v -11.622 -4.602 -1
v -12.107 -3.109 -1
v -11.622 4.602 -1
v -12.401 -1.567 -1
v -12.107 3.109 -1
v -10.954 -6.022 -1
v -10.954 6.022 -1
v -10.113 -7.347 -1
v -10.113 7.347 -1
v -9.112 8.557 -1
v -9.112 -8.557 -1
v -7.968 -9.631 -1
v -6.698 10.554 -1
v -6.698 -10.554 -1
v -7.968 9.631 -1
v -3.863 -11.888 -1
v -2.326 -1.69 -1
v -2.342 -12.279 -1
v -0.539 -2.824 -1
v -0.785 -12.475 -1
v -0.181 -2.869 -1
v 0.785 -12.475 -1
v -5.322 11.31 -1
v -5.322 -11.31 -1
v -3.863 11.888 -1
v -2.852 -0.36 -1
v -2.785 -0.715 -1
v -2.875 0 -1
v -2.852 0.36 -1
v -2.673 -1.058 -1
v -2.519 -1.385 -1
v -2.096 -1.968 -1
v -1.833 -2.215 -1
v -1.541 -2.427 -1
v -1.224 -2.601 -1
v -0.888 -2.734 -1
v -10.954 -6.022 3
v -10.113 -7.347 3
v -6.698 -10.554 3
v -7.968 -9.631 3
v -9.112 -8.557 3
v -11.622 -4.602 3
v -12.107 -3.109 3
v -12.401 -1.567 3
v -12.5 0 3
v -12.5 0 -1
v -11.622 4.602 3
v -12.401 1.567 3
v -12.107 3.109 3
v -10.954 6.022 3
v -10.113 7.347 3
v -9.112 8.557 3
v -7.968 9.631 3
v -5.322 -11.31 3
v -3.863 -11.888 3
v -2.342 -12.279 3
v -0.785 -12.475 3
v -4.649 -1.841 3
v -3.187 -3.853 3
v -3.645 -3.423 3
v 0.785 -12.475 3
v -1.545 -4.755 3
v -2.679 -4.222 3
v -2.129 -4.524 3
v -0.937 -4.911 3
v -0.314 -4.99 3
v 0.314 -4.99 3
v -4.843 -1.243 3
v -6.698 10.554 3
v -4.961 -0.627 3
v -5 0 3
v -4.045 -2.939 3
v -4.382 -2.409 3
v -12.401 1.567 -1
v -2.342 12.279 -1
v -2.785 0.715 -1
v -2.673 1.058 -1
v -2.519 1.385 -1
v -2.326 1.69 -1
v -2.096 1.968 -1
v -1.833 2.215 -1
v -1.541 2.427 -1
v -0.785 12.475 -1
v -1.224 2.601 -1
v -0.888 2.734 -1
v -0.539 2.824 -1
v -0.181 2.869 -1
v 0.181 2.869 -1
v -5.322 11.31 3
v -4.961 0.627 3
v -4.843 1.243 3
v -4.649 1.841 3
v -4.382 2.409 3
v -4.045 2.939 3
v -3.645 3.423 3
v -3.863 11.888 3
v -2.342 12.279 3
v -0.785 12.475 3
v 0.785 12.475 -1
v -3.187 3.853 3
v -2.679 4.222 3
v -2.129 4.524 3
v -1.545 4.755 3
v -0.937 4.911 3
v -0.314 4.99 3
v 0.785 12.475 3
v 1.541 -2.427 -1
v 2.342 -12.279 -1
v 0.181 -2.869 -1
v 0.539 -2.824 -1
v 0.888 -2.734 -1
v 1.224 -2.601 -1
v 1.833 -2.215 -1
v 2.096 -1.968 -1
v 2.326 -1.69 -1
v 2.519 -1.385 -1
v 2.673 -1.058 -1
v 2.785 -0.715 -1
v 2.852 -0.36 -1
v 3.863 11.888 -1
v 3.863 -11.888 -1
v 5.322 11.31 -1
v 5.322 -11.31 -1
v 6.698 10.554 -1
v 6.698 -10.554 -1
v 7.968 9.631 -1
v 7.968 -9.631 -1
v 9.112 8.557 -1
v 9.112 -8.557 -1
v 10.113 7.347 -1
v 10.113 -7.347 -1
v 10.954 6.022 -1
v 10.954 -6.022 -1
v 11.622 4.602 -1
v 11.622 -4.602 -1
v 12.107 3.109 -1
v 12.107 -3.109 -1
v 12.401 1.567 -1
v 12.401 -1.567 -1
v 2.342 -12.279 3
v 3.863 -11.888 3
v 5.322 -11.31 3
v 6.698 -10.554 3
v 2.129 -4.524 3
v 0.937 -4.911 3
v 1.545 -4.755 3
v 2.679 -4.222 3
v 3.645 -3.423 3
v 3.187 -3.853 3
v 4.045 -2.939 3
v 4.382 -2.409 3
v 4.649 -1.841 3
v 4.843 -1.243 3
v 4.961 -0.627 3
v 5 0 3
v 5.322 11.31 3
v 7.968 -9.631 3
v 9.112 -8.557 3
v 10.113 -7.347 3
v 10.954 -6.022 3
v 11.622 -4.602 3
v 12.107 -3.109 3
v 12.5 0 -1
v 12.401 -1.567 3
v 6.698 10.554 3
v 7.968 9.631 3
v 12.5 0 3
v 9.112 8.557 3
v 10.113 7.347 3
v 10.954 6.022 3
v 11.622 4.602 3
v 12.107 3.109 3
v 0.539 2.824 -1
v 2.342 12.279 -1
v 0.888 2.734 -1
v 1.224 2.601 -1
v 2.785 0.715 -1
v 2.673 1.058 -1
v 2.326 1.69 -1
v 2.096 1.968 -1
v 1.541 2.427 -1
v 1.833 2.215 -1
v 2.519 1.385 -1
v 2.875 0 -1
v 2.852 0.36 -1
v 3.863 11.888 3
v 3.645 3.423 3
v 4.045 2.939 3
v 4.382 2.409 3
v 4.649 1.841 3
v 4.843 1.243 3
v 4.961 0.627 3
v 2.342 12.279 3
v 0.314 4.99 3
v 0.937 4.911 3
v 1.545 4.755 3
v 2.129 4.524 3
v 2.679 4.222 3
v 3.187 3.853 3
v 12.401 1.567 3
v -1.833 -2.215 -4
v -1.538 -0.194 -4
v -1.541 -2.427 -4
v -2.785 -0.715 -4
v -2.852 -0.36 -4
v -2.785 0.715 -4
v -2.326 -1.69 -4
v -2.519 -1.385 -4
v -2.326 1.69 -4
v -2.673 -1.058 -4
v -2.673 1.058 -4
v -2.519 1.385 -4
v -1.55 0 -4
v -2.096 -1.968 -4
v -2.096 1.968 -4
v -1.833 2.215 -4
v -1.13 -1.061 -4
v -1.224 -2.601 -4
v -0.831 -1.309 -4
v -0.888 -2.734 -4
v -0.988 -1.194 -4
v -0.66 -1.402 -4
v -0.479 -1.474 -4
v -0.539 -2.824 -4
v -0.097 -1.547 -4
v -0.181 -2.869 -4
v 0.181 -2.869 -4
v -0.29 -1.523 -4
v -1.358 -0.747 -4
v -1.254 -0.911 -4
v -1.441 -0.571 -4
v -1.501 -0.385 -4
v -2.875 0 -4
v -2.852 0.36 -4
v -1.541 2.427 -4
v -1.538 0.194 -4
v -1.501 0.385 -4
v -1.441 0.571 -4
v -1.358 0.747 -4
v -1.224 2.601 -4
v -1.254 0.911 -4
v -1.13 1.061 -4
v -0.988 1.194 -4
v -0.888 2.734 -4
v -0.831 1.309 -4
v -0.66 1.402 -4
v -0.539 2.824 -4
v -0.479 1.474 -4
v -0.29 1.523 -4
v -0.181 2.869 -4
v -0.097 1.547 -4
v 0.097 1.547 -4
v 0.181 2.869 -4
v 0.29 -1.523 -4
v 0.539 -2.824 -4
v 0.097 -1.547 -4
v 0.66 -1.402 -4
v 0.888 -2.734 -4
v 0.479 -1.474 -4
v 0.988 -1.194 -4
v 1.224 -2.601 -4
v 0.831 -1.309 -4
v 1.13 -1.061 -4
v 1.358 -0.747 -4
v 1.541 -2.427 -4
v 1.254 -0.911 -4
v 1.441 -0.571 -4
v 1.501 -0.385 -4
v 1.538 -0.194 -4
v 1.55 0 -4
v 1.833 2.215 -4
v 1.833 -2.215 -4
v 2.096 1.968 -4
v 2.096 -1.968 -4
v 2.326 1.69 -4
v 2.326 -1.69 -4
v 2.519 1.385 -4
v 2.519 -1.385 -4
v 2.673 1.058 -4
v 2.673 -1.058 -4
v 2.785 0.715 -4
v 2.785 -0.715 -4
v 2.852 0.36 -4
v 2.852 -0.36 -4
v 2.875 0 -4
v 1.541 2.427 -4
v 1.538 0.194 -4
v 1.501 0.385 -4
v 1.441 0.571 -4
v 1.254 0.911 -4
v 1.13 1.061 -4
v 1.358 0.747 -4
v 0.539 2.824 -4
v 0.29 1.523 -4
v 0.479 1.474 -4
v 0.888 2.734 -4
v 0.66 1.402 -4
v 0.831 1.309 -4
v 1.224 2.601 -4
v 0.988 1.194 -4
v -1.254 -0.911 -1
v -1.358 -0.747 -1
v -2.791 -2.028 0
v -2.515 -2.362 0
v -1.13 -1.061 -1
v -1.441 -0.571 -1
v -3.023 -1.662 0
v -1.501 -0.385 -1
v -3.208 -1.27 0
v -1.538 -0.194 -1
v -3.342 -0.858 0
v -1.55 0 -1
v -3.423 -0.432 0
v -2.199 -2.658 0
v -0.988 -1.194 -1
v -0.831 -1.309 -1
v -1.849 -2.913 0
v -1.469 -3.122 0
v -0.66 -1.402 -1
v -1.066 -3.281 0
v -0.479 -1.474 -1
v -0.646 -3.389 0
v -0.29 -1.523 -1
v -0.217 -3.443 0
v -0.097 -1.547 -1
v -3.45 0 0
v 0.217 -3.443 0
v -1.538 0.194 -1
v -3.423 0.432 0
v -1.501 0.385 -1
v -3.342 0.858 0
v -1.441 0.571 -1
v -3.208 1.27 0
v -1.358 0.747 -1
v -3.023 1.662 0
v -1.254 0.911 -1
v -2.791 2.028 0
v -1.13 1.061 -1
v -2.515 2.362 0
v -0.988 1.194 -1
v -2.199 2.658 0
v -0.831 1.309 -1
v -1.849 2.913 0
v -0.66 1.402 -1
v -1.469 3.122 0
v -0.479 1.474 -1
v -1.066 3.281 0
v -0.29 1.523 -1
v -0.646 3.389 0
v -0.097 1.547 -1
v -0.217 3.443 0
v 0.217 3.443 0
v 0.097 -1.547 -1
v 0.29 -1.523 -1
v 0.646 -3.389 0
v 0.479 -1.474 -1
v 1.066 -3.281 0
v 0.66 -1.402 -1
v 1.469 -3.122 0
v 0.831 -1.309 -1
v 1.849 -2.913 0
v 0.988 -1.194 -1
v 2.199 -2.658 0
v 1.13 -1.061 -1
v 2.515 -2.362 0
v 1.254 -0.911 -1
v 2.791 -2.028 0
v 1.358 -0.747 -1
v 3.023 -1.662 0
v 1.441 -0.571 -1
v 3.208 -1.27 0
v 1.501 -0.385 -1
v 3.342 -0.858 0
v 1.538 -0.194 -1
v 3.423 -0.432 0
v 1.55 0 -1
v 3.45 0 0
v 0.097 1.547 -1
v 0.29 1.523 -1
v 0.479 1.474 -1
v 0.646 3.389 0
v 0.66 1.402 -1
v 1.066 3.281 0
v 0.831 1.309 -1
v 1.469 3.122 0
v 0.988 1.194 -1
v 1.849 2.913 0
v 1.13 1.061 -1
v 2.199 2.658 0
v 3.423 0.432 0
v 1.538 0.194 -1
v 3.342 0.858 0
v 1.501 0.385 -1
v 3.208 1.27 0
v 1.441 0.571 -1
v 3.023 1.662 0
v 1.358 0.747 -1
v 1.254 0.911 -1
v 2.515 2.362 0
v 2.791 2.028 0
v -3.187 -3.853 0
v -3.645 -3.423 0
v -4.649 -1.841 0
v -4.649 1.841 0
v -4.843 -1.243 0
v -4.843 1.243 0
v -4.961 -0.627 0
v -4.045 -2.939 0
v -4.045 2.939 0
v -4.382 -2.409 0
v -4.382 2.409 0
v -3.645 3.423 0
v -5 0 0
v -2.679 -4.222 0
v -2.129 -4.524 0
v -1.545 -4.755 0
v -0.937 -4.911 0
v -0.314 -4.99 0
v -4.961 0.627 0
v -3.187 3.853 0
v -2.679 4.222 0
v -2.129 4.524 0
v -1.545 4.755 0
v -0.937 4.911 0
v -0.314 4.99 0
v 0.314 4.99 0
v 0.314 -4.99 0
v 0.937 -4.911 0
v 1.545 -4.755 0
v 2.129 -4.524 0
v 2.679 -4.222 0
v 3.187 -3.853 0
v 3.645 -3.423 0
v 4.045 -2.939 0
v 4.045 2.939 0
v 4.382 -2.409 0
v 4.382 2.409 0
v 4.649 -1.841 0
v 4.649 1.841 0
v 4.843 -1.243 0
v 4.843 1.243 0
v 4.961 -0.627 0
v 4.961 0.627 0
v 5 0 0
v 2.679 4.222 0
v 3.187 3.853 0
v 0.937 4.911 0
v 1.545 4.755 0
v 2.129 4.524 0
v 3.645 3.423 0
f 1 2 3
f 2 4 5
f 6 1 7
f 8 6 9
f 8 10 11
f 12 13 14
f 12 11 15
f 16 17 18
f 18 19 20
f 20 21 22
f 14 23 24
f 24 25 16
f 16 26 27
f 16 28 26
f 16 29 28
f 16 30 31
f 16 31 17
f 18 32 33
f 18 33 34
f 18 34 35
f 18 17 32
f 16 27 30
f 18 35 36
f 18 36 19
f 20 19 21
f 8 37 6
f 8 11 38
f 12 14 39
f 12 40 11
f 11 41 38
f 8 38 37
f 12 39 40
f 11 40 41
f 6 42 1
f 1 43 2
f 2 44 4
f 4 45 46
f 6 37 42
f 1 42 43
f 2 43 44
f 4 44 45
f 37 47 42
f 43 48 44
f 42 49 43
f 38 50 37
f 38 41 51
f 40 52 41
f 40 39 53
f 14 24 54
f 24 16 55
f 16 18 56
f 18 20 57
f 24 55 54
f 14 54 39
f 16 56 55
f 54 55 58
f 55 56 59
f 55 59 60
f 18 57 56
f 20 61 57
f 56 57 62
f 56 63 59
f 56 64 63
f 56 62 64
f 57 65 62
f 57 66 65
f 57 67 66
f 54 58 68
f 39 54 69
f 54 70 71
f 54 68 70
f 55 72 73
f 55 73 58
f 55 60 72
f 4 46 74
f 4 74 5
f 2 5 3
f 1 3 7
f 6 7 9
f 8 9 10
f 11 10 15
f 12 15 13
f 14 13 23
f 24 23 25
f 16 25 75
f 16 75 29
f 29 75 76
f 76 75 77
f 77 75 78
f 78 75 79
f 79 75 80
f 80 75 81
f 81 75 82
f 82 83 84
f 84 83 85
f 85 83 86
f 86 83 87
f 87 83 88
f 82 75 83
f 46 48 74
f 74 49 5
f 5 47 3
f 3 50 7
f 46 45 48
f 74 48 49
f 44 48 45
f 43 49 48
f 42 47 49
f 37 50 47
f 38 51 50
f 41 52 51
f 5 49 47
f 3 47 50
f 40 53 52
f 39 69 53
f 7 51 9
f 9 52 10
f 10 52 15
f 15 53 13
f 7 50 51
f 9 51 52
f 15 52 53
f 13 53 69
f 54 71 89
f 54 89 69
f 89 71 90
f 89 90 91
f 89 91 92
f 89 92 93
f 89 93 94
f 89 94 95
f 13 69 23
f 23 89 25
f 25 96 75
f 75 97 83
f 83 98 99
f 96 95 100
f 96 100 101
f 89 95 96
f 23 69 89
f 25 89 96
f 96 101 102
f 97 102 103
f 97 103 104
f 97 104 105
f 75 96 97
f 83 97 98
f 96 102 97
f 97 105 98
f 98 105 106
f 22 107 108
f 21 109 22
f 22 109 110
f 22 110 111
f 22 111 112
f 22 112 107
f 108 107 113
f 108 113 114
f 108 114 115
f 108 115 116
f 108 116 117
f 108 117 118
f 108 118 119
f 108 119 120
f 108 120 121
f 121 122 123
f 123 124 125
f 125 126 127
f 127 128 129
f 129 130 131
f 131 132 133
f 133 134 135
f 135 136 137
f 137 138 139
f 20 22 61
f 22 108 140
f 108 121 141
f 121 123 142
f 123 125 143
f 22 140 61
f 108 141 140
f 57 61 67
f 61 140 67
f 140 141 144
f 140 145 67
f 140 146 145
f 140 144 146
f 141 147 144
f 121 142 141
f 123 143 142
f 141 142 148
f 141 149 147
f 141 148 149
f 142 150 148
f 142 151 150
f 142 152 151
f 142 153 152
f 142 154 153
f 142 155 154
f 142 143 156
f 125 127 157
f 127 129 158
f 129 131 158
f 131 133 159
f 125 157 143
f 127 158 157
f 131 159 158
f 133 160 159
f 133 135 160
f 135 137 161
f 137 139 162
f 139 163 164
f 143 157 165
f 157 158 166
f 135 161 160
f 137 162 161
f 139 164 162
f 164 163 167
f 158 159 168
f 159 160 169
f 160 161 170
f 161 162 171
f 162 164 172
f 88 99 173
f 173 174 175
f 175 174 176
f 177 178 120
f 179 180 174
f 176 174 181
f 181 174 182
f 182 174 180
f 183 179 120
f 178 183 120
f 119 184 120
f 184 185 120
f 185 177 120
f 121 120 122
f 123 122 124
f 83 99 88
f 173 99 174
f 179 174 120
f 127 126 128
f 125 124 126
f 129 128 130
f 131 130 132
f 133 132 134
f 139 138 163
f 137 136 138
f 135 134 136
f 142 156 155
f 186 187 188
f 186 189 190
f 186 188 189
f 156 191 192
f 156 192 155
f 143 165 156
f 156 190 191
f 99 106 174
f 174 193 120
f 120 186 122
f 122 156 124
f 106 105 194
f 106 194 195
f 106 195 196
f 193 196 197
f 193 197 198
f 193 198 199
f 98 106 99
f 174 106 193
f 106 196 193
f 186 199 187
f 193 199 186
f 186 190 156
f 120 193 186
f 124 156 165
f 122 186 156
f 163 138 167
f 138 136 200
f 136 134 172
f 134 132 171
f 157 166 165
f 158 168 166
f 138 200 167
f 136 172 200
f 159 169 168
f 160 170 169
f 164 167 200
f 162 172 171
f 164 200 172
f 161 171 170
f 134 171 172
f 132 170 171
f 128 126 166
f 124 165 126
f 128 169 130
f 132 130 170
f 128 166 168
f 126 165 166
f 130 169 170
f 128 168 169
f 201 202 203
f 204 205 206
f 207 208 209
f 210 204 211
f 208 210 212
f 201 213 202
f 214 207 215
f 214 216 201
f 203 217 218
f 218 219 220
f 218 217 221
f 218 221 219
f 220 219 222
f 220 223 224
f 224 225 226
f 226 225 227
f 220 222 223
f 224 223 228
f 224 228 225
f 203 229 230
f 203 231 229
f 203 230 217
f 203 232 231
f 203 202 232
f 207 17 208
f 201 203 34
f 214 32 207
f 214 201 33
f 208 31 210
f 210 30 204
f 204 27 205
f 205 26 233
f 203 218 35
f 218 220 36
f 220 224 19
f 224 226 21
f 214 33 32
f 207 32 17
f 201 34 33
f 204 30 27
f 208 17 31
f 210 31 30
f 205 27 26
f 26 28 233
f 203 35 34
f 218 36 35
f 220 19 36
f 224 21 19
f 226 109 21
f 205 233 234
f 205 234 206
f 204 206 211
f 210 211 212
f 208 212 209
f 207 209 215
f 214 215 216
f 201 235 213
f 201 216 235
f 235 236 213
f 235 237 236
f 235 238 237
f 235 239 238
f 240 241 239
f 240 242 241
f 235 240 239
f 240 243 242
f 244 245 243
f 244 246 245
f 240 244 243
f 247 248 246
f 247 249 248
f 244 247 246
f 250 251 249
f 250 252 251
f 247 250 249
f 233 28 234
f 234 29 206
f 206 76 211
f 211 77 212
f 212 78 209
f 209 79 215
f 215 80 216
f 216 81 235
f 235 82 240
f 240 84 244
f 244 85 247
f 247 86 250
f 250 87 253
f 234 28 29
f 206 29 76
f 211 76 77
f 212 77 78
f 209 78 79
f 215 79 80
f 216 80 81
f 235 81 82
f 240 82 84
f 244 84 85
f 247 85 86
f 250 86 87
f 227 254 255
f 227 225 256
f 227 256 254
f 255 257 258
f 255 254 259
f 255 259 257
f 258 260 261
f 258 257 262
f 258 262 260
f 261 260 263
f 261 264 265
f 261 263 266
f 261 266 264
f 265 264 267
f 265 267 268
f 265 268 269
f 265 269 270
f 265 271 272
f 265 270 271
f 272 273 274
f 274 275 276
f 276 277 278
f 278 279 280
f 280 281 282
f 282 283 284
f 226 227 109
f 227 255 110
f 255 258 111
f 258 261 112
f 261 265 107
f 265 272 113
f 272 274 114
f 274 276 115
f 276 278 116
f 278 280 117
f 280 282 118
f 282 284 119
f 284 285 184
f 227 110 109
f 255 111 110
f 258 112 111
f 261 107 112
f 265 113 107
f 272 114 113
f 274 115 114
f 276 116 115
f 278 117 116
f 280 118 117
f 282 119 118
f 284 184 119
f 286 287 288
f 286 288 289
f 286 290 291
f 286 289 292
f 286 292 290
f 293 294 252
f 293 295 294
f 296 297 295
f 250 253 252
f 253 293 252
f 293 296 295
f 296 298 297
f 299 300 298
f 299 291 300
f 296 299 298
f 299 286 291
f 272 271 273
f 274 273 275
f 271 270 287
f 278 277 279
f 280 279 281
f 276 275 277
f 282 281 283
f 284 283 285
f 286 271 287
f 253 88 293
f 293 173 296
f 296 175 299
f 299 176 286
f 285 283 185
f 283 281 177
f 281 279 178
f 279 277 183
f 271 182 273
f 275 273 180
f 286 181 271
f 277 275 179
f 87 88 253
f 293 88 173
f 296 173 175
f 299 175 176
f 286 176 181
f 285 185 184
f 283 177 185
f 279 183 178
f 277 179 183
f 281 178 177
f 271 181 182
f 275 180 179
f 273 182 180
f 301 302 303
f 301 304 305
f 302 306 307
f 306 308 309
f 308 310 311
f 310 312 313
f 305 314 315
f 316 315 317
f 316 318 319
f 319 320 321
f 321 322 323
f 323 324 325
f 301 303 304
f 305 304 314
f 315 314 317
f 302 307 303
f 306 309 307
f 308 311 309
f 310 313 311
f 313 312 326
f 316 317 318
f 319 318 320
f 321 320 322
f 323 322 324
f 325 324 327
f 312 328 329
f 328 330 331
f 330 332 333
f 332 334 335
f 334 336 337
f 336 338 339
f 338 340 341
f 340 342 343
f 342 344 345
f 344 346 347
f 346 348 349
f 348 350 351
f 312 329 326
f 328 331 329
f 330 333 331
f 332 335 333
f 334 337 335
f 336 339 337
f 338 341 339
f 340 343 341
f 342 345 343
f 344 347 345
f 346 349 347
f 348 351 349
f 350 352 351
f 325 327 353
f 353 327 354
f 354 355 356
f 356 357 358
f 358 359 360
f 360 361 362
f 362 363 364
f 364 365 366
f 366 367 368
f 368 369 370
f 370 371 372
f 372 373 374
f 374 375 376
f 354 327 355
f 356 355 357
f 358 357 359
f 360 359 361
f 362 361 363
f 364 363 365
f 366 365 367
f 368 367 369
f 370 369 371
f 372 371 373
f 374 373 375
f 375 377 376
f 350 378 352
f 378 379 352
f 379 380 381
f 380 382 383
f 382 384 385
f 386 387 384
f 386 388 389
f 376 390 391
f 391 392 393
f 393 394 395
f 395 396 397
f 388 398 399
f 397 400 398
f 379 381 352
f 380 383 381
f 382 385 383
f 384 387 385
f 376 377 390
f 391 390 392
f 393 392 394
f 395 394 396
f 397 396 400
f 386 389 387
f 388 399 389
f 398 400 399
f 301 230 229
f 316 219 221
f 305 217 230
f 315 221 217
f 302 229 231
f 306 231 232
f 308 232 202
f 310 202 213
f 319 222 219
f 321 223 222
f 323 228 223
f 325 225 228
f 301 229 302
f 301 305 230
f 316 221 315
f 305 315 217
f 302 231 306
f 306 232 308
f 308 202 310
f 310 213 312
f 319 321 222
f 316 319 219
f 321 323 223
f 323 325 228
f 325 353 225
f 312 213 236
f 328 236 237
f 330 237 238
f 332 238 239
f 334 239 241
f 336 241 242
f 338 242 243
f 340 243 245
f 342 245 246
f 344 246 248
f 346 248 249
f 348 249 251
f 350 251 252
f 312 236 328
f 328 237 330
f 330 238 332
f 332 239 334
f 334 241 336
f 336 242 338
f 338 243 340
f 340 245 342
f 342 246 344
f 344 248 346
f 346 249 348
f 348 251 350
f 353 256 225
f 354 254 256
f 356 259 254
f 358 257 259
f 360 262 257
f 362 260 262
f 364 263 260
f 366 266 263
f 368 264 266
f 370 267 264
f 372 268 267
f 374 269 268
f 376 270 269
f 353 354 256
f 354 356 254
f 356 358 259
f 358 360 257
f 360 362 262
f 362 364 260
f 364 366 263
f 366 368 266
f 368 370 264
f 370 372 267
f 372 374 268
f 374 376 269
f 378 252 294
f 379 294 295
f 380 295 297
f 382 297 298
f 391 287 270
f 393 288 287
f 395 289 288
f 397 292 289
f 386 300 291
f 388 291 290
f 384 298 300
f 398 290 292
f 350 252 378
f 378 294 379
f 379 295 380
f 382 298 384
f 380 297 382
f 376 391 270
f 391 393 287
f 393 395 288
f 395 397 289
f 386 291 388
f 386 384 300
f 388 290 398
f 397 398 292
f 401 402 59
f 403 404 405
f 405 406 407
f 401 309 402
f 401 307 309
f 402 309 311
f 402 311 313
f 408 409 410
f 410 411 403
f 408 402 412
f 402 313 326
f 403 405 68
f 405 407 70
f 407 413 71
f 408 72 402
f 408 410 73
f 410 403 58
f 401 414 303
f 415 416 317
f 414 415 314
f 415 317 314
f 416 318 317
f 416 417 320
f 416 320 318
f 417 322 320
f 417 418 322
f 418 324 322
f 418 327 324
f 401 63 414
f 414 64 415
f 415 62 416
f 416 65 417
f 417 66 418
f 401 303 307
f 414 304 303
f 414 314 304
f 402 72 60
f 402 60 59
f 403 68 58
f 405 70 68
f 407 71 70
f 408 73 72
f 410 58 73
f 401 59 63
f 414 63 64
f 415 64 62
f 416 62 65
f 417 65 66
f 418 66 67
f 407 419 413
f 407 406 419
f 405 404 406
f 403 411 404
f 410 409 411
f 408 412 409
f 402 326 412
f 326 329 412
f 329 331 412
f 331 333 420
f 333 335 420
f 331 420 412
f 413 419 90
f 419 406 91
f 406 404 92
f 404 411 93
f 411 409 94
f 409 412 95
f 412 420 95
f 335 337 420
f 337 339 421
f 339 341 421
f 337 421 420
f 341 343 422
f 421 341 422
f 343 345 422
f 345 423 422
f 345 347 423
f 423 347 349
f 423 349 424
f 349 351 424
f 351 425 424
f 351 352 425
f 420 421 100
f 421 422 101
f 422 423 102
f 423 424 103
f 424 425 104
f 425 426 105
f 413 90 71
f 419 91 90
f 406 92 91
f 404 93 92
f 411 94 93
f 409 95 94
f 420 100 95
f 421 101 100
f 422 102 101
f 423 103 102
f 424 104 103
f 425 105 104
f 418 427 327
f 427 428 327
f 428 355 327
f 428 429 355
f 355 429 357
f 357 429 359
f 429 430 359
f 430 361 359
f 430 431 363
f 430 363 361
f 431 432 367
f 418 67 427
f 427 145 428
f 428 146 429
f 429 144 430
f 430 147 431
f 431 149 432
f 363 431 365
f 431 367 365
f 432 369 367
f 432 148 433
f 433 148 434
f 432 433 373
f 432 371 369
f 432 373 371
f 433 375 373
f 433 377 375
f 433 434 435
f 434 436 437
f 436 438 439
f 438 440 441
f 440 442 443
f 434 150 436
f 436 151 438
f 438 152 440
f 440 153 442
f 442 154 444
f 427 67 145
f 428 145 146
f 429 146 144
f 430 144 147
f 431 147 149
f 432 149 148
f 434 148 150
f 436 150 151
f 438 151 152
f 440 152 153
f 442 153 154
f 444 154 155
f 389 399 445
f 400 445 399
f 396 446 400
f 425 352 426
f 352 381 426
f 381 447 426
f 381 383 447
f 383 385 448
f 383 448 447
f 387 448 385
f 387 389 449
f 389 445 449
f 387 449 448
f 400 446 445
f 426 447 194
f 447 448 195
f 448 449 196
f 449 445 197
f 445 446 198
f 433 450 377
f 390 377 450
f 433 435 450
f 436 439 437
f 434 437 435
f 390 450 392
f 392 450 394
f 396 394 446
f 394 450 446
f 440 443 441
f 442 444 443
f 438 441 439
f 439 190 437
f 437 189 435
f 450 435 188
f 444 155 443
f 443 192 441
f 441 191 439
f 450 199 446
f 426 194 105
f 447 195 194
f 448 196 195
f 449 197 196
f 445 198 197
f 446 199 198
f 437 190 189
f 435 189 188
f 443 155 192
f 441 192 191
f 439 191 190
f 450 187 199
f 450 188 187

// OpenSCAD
$fn = 50;

difference() {
	union() {
		translate(v = [0, 0, -1.0]) {
			cylinder(h = 4.0, r = 12.5);
		}
		#translate(v = [0, 0, -4.0]) {
			cylinder(h = 4.0, r = 2.875);
		}
	}
	union() {
		translate(v = [0, 0, 0]) {
			rotate(a = [0, 0, 0]) {
				difference() {
					union() {
						translate(v = [0, 0, -4.0]) {
							cylinder(h = 4.0, r = 1.25);
						}
						translate(v = [0, 0, -1.0]) {
							cylinder(h = 1.0, r1 = 1.55, r2 = 3.45);
						}
						translate(v = [0, 0, -4.0]) {
							cylinder(h = 4.0, r = 1.55);
						}
						translate(v = [0, 0, -4.0]) {
							cylinder(h = 4.0, r = 1.25);
						}
					}
					union();
				}
			}
		}
		#cylinder(h = 3, r = 5.0);
	}
}
